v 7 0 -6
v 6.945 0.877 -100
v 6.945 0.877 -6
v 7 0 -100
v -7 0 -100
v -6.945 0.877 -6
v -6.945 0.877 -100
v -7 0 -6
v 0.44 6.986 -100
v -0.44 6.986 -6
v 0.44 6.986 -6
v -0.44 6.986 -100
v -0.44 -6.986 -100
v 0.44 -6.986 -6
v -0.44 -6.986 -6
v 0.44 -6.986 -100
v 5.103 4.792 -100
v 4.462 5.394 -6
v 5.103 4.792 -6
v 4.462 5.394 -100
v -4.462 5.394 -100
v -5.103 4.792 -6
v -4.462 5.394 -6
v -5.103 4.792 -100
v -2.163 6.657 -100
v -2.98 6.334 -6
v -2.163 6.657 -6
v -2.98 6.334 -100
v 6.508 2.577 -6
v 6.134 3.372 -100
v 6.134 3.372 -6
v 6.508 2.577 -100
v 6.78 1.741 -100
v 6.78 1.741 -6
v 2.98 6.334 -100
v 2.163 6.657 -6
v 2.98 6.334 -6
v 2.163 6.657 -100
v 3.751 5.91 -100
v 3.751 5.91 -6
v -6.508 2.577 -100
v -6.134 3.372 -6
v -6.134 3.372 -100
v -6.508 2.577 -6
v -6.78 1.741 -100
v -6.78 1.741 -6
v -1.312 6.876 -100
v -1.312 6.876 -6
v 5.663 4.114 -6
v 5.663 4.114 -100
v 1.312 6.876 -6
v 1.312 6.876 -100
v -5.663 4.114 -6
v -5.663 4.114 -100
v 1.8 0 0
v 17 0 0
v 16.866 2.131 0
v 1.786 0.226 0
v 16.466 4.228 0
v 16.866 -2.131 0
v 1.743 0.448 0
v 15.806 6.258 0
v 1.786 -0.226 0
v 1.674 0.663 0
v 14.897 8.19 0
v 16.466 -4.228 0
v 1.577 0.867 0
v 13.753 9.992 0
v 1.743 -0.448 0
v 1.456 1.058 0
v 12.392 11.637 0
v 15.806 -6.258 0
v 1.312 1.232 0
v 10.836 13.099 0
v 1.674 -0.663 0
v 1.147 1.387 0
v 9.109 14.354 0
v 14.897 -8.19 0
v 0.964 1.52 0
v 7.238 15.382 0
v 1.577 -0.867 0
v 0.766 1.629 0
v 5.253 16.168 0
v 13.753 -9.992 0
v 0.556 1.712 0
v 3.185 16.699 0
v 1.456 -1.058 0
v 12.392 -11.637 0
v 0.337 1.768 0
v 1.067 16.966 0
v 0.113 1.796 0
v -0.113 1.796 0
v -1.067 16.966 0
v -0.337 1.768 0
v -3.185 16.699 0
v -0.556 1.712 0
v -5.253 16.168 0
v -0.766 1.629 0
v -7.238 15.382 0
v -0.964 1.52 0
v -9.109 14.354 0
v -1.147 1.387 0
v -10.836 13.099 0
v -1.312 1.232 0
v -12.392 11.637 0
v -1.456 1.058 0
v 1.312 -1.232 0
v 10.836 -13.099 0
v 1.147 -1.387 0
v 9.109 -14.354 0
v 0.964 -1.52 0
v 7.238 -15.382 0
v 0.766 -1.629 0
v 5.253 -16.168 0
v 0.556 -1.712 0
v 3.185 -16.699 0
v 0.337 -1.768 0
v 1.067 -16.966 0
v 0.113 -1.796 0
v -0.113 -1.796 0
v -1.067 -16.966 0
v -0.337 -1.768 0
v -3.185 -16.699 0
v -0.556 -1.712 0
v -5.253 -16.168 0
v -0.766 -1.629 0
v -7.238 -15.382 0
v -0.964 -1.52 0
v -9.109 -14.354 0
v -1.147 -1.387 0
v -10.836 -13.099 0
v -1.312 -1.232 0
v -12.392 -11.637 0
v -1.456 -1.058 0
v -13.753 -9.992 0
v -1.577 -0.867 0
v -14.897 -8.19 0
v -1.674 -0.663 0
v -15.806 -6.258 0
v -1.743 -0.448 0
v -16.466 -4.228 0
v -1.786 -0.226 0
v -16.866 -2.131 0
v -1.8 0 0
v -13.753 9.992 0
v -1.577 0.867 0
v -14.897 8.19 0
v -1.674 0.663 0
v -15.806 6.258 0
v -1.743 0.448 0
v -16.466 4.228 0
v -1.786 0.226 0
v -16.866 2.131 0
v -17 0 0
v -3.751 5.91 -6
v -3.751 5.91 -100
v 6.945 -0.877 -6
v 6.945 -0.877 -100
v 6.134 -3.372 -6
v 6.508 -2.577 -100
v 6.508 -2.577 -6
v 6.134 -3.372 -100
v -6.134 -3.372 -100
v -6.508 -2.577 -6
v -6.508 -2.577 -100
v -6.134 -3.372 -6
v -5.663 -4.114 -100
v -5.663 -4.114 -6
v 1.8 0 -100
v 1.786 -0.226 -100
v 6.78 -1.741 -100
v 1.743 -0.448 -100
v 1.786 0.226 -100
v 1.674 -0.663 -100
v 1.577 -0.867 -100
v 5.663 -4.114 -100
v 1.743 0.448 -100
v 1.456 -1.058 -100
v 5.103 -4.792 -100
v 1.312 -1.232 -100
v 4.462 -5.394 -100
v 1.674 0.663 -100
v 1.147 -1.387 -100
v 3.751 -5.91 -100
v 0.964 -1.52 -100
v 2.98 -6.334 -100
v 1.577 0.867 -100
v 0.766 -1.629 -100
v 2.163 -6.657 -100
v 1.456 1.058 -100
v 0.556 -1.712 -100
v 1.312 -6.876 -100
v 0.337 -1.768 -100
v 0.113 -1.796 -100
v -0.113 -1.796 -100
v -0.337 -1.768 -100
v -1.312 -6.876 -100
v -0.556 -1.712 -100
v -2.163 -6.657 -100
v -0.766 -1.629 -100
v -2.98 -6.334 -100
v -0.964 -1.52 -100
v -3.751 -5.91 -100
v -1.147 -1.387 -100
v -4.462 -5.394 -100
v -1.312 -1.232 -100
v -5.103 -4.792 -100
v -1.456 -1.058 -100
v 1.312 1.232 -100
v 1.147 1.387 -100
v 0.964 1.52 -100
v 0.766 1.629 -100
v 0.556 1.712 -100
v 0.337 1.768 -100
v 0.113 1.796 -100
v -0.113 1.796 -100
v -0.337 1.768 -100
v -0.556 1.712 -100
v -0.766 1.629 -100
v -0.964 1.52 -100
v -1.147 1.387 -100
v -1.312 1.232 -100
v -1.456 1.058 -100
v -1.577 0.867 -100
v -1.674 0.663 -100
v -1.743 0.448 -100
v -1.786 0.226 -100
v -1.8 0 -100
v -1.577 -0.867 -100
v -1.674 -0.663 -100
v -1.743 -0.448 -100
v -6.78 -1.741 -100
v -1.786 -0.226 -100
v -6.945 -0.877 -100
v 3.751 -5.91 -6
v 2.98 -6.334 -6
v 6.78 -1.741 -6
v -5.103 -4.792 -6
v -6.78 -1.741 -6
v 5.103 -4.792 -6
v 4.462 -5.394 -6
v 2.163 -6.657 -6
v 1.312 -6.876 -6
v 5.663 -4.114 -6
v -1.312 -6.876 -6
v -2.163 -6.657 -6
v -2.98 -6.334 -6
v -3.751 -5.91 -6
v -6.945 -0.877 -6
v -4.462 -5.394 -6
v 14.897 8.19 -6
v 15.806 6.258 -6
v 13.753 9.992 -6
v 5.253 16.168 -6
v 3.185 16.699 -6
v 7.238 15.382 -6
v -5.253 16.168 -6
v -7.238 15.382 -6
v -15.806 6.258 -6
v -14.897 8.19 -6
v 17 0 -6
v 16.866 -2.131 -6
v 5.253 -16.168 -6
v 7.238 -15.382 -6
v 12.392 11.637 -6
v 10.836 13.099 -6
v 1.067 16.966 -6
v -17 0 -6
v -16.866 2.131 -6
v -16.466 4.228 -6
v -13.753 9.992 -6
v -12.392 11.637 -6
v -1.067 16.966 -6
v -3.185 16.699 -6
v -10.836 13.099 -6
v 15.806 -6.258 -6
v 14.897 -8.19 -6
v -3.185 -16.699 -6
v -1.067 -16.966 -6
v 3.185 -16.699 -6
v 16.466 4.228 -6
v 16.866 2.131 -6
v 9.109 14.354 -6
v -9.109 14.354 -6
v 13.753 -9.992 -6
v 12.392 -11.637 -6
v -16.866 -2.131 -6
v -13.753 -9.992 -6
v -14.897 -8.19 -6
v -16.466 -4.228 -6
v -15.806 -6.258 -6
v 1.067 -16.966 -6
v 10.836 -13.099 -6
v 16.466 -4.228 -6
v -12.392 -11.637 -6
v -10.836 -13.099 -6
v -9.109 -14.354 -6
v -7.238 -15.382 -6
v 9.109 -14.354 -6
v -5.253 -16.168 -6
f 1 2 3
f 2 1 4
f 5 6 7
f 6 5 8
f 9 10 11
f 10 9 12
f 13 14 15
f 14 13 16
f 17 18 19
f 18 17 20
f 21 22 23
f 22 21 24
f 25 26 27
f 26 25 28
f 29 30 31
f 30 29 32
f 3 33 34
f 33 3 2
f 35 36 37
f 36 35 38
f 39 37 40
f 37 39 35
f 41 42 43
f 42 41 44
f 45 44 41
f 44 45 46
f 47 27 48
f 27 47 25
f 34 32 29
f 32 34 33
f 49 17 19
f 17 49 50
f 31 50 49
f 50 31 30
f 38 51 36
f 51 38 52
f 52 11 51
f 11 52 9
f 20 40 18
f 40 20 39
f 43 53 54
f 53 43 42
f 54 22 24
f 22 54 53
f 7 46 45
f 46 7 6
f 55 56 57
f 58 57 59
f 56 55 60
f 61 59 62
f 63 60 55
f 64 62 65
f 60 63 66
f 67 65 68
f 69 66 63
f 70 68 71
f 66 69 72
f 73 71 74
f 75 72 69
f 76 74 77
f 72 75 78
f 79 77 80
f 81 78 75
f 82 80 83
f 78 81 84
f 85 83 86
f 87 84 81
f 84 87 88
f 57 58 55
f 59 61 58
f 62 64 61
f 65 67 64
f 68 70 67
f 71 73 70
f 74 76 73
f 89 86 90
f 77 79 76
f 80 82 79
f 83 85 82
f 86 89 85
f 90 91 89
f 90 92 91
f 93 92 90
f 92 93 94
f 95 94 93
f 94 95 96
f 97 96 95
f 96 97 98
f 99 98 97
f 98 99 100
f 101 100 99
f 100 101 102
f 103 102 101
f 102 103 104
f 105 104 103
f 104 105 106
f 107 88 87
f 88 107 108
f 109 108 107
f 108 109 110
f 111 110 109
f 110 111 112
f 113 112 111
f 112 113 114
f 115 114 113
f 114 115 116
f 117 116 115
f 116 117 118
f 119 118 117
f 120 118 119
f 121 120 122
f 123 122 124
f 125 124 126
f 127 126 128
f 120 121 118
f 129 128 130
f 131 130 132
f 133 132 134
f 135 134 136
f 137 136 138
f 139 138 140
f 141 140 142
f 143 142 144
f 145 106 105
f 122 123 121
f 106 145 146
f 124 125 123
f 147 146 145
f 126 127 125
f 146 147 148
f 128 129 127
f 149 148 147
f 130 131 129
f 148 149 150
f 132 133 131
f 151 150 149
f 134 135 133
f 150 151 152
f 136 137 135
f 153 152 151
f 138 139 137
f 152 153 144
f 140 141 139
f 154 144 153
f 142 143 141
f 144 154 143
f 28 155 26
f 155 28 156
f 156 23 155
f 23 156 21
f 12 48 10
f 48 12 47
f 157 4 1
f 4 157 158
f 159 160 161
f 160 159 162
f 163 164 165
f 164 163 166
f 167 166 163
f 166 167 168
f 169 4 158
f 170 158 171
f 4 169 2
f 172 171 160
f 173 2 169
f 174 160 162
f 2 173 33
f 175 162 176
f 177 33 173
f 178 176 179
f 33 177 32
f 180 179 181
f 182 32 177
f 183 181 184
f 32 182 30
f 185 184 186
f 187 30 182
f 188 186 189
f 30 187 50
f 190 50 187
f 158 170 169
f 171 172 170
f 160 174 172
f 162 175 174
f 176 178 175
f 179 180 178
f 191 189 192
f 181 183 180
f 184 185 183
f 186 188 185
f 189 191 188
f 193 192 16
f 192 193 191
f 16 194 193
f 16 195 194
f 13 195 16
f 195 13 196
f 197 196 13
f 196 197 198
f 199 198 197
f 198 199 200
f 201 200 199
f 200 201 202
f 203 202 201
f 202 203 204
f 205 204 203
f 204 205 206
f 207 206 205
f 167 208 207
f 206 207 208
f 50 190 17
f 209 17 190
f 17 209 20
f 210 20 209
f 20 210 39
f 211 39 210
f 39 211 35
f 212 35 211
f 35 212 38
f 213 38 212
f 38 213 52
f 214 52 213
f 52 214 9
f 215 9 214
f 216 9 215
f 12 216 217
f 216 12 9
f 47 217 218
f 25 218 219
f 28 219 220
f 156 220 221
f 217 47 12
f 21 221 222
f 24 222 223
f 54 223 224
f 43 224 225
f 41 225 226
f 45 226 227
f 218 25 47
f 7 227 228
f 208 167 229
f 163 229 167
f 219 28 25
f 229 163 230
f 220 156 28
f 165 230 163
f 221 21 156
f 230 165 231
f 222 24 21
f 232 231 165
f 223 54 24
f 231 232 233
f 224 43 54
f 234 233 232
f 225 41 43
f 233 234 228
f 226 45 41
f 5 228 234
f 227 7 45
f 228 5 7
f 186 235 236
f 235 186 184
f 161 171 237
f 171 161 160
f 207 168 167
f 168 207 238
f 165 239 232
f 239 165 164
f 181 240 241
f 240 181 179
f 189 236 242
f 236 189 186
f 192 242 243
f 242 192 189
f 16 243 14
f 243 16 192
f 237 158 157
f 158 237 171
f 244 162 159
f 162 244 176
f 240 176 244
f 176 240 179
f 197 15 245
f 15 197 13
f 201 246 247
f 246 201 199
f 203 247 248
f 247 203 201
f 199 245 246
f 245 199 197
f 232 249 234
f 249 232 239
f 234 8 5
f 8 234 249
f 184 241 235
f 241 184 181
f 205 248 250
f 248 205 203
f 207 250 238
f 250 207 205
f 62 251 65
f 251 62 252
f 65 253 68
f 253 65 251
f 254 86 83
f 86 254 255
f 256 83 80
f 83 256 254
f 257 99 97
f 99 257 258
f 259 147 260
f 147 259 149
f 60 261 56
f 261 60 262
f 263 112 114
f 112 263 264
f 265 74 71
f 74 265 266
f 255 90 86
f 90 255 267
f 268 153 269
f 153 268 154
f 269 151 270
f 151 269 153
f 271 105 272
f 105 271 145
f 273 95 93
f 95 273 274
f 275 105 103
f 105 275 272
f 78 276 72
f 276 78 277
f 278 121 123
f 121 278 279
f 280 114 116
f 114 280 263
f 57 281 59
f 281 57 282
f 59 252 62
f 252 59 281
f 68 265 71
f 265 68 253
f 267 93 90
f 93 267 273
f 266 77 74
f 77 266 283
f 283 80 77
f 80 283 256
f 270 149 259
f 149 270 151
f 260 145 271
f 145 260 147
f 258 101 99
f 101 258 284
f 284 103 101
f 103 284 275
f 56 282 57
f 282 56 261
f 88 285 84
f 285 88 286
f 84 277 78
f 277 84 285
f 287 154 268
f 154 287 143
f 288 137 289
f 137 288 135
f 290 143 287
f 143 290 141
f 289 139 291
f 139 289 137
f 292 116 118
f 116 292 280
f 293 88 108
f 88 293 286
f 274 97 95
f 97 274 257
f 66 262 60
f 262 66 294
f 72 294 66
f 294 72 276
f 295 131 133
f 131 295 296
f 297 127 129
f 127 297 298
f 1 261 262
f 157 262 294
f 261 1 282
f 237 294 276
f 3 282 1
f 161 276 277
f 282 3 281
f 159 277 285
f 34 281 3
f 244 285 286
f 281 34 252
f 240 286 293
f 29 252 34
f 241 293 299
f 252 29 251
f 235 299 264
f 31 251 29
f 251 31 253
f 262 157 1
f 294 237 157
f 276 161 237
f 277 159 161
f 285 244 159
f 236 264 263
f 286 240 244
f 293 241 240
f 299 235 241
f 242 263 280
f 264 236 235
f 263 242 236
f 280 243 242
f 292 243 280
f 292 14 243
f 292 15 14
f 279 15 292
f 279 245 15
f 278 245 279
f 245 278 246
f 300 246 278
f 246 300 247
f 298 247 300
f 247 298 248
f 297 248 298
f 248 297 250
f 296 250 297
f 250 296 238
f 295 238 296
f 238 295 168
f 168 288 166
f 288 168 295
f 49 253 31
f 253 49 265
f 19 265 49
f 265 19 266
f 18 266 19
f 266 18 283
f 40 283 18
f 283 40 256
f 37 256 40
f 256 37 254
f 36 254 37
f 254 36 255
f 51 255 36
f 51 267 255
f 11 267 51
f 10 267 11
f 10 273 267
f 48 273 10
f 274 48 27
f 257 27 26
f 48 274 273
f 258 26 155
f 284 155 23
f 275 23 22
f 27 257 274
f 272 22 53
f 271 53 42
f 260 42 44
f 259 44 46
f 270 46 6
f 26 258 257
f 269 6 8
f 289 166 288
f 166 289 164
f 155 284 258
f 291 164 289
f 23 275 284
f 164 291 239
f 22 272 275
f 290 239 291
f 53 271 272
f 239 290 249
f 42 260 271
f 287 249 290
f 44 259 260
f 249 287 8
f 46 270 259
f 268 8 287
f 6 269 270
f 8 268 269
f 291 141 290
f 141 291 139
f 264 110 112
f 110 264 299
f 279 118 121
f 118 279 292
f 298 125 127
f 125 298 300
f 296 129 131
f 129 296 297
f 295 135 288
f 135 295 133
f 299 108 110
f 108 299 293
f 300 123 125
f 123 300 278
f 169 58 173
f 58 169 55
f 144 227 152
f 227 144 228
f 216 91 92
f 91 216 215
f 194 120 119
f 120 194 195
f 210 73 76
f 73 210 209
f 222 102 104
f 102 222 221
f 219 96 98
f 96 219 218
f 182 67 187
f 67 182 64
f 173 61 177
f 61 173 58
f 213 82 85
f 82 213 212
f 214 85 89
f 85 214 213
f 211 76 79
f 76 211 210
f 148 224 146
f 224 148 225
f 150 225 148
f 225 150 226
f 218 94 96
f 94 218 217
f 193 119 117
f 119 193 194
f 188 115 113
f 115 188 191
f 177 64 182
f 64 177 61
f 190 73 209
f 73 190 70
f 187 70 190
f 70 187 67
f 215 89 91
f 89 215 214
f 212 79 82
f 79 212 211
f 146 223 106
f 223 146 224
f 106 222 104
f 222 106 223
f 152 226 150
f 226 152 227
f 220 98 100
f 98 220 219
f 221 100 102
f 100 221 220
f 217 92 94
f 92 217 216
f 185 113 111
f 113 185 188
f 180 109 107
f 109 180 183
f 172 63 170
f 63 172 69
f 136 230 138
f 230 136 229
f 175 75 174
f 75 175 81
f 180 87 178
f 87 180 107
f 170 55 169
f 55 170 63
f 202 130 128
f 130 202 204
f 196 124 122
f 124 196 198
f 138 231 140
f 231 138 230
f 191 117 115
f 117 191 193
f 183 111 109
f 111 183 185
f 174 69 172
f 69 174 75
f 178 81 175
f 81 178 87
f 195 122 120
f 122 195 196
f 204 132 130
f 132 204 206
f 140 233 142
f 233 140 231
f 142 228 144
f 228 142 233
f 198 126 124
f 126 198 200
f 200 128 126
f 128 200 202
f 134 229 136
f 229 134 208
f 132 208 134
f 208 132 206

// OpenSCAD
$fn = 50;


difference() {
	union() {
		translate(v = [0, 0, -100.0000000000]) {
			cylinder(h = 100, r = 7.0000000000);
		}
		translate(v = [0, 0, -6.0000000000]) {
			cylinder(h = 6, r = 17.0000000000);
		}
	}
	union() {
		#translate(v = [0, 0, -100]) {
			cylinder(h = 100, r = 1.8000000000);
		}
	}
}
